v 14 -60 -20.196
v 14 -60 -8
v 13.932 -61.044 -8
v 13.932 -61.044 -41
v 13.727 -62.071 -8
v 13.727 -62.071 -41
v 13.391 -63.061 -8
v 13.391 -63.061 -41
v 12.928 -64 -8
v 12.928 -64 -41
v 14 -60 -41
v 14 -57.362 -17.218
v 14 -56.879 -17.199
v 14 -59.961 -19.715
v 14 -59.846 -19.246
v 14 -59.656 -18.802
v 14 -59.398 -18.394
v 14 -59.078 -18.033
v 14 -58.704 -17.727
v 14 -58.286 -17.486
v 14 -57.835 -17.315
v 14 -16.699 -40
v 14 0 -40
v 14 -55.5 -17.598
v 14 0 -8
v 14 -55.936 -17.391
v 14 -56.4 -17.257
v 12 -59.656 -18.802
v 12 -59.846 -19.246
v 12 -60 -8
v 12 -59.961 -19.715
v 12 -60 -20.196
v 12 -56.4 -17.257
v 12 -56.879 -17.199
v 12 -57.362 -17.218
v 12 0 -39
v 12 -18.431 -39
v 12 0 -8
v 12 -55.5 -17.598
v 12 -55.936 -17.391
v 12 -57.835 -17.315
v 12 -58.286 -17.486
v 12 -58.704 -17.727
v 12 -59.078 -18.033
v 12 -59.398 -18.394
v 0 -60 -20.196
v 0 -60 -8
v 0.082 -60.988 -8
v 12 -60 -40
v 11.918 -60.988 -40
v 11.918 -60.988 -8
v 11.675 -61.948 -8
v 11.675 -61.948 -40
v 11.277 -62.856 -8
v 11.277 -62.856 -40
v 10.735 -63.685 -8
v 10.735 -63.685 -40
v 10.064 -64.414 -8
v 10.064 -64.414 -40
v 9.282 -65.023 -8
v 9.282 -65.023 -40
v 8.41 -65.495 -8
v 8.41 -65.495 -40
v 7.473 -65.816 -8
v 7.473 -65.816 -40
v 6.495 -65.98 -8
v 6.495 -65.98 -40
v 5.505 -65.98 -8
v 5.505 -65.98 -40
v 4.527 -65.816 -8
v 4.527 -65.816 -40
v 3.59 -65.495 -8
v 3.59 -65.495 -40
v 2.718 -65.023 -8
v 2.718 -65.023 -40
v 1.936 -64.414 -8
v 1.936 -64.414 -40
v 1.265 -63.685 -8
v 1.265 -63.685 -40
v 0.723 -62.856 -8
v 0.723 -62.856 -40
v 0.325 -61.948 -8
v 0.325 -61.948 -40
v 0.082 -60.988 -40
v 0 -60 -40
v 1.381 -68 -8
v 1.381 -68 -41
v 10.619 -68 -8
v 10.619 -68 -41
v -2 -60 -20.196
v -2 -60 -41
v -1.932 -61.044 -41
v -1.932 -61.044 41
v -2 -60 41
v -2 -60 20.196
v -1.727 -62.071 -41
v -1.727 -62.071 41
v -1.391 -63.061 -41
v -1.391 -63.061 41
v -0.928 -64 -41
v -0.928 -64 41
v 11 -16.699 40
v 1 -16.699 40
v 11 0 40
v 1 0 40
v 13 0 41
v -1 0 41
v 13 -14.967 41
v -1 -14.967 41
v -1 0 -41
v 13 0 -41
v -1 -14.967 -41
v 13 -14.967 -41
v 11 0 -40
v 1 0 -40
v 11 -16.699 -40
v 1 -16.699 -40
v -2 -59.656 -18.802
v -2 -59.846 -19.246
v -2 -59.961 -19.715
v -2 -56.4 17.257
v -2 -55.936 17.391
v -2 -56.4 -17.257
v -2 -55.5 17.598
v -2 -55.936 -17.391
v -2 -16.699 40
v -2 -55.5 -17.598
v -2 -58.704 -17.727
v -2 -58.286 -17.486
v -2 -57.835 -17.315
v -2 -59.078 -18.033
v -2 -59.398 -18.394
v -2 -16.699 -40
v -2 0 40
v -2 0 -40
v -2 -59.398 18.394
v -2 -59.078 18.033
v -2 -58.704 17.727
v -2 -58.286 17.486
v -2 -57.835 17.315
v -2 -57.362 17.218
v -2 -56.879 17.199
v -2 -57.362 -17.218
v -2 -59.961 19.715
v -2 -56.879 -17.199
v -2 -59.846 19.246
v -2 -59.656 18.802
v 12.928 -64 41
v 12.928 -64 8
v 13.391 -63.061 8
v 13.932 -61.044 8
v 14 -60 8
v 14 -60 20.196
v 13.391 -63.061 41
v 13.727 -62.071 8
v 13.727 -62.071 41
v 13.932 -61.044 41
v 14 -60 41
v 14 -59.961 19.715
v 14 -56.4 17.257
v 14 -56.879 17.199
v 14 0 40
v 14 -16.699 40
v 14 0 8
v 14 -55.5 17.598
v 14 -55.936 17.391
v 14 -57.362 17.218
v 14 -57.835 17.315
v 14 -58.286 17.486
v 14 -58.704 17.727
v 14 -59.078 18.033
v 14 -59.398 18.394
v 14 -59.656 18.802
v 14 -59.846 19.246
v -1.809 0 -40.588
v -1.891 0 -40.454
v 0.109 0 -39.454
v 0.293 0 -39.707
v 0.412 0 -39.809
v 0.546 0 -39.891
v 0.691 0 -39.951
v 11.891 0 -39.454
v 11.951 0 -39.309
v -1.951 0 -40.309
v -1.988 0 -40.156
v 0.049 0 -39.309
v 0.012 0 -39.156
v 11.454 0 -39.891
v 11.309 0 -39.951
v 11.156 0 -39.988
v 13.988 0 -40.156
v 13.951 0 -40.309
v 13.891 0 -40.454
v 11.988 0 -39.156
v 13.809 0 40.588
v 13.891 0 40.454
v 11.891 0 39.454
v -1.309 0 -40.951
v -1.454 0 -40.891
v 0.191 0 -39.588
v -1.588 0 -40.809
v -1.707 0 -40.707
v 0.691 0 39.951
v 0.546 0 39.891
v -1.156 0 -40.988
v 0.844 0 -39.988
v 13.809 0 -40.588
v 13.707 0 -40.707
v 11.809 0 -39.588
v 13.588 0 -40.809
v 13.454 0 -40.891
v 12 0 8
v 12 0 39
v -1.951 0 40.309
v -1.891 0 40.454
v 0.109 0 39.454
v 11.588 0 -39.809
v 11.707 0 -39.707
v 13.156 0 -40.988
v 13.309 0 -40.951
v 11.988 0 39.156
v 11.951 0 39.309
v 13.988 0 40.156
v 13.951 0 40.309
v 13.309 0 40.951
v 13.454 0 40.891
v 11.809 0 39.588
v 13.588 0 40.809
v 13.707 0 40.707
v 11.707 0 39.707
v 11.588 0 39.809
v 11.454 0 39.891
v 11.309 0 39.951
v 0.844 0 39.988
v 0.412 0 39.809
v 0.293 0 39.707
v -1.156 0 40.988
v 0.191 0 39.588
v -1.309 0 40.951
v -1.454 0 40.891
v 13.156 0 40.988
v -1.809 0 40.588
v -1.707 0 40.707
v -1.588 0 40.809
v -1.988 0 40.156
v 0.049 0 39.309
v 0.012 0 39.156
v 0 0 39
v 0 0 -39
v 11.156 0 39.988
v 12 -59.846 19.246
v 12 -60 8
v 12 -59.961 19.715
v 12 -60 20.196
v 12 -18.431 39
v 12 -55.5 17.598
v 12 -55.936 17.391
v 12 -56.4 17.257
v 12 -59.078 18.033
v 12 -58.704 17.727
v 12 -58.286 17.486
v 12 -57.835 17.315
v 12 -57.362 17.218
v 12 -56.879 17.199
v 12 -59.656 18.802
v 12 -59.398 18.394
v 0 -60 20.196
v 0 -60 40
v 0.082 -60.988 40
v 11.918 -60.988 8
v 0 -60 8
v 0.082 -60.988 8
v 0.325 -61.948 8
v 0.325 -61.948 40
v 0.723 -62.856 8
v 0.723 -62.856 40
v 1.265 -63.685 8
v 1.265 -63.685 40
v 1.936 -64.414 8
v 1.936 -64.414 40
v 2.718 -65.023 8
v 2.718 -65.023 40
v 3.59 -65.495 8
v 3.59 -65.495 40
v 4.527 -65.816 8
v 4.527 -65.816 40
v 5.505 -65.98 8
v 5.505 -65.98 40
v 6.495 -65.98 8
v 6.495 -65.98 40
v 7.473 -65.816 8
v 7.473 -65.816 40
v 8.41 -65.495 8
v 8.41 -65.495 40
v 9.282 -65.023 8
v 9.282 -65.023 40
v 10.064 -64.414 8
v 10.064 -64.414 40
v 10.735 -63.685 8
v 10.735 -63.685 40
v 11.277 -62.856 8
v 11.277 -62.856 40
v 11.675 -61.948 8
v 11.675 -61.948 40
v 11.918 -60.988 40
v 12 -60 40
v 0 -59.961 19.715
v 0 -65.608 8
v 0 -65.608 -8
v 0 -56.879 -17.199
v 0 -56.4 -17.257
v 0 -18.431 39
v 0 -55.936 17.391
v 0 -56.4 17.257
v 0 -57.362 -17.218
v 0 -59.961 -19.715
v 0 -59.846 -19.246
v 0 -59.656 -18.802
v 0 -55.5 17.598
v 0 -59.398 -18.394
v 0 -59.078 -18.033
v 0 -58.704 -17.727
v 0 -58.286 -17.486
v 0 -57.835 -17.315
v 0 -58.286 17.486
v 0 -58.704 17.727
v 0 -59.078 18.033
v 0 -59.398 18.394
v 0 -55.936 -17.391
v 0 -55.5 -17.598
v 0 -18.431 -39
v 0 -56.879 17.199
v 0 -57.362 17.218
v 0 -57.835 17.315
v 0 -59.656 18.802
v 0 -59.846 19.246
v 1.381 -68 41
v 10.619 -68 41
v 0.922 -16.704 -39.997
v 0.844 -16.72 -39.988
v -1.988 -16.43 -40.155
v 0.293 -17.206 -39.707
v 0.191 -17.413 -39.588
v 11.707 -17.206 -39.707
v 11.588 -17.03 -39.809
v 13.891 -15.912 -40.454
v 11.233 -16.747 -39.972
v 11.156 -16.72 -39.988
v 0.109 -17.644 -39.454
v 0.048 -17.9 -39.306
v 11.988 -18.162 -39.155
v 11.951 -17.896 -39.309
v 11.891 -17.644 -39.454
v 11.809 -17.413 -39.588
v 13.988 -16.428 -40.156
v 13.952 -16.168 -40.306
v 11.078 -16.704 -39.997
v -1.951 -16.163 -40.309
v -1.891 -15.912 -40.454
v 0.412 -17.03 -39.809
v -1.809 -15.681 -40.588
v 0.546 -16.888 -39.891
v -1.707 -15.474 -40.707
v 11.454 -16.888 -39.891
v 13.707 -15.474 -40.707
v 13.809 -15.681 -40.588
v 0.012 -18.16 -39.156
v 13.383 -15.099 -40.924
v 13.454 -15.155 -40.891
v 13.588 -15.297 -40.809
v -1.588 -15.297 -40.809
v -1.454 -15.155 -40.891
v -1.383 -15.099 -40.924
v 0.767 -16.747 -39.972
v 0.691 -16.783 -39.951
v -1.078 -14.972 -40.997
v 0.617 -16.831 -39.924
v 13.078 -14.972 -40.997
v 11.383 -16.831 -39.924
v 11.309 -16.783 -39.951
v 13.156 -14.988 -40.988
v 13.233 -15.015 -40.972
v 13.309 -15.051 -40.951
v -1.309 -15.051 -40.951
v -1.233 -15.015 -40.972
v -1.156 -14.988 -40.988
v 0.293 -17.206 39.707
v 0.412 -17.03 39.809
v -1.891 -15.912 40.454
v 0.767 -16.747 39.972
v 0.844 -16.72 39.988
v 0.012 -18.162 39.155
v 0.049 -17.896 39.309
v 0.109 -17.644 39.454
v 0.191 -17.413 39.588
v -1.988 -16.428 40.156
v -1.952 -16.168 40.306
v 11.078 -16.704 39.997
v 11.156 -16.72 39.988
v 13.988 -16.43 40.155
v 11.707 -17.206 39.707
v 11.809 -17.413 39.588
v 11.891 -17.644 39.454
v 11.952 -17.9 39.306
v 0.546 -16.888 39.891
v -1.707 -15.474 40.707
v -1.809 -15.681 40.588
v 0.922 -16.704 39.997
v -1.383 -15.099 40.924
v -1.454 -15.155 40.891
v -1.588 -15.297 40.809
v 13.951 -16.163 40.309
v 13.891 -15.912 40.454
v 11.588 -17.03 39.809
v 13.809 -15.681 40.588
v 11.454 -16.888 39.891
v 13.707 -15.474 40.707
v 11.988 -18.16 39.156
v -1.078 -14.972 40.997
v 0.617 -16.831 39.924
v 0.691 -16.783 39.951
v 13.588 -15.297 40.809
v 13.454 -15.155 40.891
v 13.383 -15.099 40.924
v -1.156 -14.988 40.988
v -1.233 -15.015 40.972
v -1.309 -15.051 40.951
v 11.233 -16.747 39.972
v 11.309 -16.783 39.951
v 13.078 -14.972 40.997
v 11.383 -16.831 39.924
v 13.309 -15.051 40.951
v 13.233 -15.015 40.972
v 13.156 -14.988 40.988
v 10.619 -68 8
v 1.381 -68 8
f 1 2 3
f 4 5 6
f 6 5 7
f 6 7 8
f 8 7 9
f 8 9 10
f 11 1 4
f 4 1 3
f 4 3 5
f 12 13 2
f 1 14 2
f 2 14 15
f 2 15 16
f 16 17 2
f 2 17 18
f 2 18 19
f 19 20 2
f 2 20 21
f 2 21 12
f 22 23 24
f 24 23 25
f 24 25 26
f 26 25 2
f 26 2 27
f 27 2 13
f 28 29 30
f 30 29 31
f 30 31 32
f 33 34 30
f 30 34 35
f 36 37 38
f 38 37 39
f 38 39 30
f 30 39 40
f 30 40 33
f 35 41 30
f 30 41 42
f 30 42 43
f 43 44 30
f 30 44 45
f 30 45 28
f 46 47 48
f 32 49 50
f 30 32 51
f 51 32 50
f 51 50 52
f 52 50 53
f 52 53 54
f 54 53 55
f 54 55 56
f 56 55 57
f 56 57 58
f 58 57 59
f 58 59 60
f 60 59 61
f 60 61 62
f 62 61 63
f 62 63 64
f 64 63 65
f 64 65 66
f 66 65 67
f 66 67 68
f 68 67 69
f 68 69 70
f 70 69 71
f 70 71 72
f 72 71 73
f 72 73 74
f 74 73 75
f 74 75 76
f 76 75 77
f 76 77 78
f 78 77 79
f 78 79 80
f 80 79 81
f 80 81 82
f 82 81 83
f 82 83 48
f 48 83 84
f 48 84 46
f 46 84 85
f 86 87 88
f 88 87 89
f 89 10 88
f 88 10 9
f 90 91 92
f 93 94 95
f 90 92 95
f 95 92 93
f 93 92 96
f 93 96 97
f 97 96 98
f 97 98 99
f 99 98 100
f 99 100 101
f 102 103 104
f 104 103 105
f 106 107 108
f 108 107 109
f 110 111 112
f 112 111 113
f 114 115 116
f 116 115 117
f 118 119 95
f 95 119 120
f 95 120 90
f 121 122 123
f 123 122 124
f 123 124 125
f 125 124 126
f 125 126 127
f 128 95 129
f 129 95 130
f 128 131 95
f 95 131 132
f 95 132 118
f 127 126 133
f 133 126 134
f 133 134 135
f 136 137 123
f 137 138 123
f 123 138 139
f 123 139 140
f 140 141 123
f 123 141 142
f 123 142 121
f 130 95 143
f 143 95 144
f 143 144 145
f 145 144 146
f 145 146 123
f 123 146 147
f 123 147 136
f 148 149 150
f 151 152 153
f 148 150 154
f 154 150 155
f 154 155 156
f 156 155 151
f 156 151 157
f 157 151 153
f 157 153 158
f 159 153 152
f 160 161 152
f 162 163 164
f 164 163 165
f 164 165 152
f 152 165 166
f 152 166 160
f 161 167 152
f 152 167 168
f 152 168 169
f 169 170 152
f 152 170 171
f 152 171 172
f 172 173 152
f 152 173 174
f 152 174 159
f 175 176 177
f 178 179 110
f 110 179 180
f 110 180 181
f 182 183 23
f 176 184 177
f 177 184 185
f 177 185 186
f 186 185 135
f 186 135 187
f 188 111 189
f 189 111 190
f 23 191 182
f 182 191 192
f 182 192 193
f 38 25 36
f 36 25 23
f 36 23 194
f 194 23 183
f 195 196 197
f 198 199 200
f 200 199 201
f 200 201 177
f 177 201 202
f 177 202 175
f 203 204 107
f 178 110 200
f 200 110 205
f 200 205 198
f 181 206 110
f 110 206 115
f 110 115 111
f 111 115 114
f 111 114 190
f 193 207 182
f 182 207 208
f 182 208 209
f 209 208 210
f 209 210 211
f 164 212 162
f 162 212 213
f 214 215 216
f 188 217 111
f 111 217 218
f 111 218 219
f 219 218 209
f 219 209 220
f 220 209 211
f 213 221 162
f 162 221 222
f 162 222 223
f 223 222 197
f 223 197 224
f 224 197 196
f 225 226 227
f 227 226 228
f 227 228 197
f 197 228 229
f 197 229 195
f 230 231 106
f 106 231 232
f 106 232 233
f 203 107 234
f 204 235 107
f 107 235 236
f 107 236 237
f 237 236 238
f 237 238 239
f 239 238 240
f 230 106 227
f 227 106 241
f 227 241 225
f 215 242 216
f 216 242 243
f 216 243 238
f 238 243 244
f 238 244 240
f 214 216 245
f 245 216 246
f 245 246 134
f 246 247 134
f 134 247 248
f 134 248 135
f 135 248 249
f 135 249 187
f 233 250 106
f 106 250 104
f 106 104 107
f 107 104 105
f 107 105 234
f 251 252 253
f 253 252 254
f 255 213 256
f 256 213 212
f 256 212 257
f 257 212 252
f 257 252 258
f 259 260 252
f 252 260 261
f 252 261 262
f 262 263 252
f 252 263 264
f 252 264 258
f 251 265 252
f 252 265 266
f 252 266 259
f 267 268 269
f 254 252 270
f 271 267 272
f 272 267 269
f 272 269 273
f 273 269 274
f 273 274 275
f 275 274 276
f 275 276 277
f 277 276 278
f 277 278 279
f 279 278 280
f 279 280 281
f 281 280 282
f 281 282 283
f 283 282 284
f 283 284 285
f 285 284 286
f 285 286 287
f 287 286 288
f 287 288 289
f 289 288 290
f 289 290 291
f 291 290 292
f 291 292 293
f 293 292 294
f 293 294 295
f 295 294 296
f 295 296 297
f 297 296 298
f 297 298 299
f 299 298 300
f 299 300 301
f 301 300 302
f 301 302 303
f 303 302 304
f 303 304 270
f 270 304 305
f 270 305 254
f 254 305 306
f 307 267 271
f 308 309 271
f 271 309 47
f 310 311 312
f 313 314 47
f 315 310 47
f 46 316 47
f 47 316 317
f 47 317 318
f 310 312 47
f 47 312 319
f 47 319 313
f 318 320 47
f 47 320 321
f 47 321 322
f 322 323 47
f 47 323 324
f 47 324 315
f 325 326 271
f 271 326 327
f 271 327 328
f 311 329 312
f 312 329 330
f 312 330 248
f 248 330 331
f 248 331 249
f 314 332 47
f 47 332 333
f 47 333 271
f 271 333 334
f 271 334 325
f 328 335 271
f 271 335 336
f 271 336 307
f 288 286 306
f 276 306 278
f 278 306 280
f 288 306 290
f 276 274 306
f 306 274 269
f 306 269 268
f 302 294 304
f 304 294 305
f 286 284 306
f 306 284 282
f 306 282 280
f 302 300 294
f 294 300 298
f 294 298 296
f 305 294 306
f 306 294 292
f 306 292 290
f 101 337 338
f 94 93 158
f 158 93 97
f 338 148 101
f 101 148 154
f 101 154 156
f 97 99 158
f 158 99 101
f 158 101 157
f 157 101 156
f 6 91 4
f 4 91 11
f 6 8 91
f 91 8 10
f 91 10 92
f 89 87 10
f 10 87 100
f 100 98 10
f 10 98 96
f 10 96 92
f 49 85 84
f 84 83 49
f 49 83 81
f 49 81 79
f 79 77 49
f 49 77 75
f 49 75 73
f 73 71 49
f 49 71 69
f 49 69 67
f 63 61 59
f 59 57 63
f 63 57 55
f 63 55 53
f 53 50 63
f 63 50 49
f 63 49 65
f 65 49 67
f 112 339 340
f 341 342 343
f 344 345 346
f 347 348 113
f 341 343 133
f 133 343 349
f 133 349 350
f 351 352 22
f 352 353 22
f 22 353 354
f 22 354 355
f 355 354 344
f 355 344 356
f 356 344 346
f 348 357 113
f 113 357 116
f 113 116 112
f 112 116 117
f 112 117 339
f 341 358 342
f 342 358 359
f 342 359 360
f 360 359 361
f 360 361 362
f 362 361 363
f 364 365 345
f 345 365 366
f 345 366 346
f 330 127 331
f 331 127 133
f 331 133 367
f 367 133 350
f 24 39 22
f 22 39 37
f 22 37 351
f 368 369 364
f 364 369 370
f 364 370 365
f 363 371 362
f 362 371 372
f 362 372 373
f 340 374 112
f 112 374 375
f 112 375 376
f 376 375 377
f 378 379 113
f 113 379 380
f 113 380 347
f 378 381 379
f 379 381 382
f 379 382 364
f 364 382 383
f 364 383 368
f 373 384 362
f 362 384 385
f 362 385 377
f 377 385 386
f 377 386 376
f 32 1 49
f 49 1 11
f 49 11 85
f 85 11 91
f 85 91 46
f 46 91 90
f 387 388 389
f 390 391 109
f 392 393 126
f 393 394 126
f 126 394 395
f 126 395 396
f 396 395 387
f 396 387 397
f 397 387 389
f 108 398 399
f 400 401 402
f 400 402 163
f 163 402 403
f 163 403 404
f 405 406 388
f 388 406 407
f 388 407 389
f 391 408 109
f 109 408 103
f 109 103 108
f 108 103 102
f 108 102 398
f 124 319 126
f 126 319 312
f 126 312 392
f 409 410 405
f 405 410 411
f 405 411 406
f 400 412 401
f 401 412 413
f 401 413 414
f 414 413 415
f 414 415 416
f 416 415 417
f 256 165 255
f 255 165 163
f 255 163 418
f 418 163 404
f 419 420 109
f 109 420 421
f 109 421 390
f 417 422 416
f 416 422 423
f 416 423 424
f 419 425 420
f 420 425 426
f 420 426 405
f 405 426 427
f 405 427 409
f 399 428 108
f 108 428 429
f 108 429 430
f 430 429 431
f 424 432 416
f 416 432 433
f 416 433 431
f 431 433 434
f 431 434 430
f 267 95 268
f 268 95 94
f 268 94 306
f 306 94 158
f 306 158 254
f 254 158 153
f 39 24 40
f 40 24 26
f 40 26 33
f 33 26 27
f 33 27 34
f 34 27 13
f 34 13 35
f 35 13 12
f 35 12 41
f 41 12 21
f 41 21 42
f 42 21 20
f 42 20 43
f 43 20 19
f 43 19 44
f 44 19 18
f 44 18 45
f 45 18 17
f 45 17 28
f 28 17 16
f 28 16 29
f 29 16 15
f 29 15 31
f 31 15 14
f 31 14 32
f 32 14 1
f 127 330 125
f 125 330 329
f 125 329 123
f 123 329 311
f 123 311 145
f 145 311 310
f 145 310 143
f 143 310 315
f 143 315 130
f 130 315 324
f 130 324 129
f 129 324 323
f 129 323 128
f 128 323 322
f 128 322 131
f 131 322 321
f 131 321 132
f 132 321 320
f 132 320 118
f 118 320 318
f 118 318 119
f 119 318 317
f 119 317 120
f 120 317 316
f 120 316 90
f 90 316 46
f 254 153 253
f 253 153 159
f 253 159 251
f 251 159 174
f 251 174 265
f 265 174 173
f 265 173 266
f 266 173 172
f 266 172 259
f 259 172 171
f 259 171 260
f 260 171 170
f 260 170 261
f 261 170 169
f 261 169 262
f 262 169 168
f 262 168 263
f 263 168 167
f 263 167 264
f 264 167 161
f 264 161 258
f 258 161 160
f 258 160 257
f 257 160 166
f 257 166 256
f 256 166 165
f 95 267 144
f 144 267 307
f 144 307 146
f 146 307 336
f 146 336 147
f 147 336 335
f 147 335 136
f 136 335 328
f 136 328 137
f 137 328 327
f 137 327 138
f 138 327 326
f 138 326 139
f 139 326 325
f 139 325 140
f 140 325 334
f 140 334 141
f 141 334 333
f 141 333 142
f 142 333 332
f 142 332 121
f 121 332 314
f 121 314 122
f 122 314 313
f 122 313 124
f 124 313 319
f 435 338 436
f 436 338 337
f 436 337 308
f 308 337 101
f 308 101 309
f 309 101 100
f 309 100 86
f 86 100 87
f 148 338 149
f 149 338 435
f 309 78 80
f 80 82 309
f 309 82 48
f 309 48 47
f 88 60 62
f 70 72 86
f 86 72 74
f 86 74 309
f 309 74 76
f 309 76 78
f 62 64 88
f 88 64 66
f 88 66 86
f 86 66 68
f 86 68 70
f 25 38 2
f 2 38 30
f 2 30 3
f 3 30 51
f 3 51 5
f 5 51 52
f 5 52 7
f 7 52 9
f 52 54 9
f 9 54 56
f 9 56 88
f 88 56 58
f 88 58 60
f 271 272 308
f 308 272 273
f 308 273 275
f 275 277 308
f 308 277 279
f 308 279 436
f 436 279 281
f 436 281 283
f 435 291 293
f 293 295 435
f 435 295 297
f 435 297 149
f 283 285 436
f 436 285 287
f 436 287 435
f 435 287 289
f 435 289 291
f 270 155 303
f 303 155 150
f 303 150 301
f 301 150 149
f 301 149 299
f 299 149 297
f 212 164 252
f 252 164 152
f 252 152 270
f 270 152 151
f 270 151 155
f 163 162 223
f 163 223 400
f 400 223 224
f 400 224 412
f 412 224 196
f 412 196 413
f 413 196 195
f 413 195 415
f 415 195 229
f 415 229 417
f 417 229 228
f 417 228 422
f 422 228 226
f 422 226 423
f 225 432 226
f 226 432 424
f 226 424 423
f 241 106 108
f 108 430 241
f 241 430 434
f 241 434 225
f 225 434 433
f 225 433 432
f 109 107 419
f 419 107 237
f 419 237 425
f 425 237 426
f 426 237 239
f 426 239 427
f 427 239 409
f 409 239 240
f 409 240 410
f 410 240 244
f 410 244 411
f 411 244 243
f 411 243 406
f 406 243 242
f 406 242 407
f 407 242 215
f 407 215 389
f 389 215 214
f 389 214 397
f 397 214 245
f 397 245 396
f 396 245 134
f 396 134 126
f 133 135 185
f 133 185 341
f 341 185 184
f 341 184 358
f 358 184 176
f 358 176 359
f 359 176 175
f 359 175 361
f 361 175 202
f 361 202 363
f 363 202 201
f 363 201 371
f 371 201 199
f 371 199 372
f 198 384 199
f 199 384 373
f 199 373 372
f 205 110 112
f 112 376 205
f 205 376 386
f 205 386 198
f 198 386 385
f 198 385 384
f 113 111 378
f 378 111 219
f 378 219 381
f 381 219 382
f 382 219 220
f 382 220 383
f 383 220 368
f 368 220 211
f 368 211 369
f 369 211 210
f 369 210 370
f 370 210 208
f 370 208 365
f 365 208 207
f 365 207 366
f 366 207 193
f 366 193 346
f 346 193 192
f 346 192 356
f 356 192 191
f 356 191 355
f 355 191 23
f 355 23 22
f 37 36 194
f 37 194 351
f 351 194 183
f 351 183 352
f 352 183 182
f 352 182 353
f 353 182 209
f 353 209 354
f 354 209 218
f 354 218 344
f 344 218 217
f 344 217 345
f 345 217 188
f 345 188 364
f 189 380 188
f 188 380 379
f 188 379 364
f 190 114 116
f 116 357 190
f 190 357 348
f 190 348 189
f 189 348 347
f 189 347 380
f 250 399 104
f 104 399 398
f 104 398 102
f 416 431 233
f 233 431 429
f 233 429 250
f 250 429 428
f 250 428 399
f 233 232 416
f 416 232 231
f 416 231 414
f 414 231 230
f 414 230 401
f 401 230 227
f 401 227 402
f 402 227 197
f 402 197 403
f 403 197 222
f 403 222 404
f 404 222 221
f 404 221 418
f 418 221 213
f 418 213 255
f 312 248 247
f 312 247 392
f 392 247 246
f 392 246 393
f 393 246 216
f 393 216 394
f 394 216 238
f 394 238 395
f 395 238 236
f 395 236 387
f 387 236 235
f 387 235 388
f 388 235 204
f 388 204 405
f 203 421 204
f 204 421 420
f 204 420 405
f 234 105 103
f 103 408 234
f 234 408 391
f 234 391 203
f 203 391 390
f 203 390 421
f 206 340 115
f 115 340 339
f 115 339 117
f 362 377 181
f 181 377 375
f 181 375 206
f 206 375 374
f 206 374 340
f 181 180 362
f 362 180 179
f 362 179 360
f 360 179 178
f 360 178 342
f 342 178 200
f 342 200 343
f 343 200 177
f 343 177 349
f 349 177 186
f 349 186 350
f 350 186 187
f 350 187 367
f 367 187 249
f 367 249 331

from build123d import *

# Parameters (mm, degrees)
EXTRUDE_1_DEPTH     = 40
EXTRUDE_START       = 1
EXTRUDE_2_DEPTH     = 1
CUT_EXTRUDE_7_REACH = 83
FILLET_1_R          = 3
EXTRUDE_6_DEPTH     = 41
SKETCH_2_W          = 15.763743406
SKETCH_2_H          = 16
CUT_EXTRUDE_1_DEPTH = 80
FILLET_2_R          = 1


with BuildPart() as part:
    # 草图1 → 凸台-拉伸1 (new, symmetric)
    with BuildSketch(Plane.XY):
        with BuildLine():
            Line((0, 0), (0, -60))
            ThreePointArc((0, -60), (6, -66), (12, -60))
            Line((12, -60), (12, 0))
            Line((12, 0), (14, 0))
            Line((14, 0), (14, -60))
            ThreePointArc((14, -60), (6, -68), (-2, -60))
            Line((-2, -60), (-2, 0))
            Line((-2, 0), (0, 0))
        make_face()
    extrude(amount=EXTRUDE_1_DEPTH, both=True)

    # 草图3 → 凸台-拉伸2 (add)
    with BuildSketch(Plane.XY.offset(40).offset(EXTRUDE_START)):
        with BuildLine():
            Line((14, -60), (14, 0))
            Line((14, 0), (-2, 0))
            Line((-2, 0), (-2, -60))
            ThreePointArc((-2, -60), (6, -68), (14, -60))
        make_face()
    extrude_2 = extrude(amount=-EXTRUDE_2_DEPTH)

    # 镜向1: 凸台-拉伸2 across plane
    add(extrude_2.mirror(Plane.XY))

    # 切除-拉伸7: up to this face of the body (flat: up to its plane)
    cut_extrude_7_end = Plane(part.part.faces().sort_by_distance((14, -30, 0))[0])
    # 草图4 → 切除-拉伸7 (cut, up to the picked face)
    with BuildSketch(Plane.ZY.offset(2), mode=Mode.PRIVATE) as cut_extrude_7_sk1:
        Polygon((15, -60), (41, -60), (41, -14.966679003), align=None)
    cut_extrude_7_tool1 = split(extrude(cut_extrude_7_sk1.sketch, amount=-CUT_EXTRUDE_7_REACH, mode=Mode.PRIVATE), bisect_by=cut_extrude_7_end, keep=Keep.BOTH, mode=Mode.PRIVATE)
    # 草图4 → 切除-拉伸7 (cut, up to the picked face)
    with BuildSketch(Plane.ZY.offset(2), mode=Mode.PRIVATE) as cut_extrude_7_sk2:
        Polygon((-41, -14.966679003), (-15, -60), (-41, -60), align=None)
    cut_extrude_7_tool2 = split(extrude(cut_extrude_7_sk2.sketch, amount=-CUT_EXTRUDE_7_REACH, mode=Mode.PRIVATE), bisect_by=cut_extrude_7_end, keep=Keep.BOTH, mode=Mode.PRIVATE)
    add(cut_extrude_7_tool1.solids().sort_by(Axis((-2, -44.988893, 32.333333), (1, 0, 0)))[0], mode=Mode.SUBTRACT)
    add(cut_extrude_7_tool2.solids().sort_by(Axis((-2, -44.988893, -32.333333), (1, 0, 0)))[0], mode=Mode.SUBTRACT)

    # 圆角1
    fillet_1_edges = [part.edges().sort_by_distance(p)[0] for p in [
        (13, -60, 15),
        (-1, -60, 15),
        (13, -60, -15),
        (-1, -60, -15),
    ]]
    fillet(fillet_1_edges, radius=FILLET_1_R)

    # 草图7 → 凸台-拉伸6 (add, symmetric)
    with BuildSketch(Plane.XY):
        with BuildLine():
            Line((0.255437353, -64), (-0.92820323, -64))
            Line((-0.92820323, -64), (1.381197846, -68))
            Line((1.381197846, -68), (2.144974753, -68))
            Line((2.144974753, -68), (9.855025247, -68))
            Line((9.855025247, -68), (10.618802154, -68))
            Line((10.618802154, -68), (12.92820323, -64))
            Line((12.92820323, -64), (11.744562647, -64))
            ThreePointArc((11.744562647, -64), (6, -67), (0.255437353, -64))
        make_face()
    extrude(amount=EXTRUDE_6_DEPTH, both=True)

    # 草图2 → 切除-拉伸1 (cut)
    with BuildSketch(Plane(origin=(0, 0, 0), x_dir=(1, 0, 0), z_dir=(0, 1, 0))):
        with Locations((7.881871703, 0)):
            Rectangle(SKETCH_2_W, SKETCH_2_H)
    extrude(amount=-CUT_EXTRUDE_1_DEPTH, mode=Mode.SUBTRACT)

    # 圆角2
    fillet_2_edges = [part.edges().sort_by_distance(p)[0] for p in [
        (12, -8.349364905, 40),
        (-2, -7.483339502, 41),
        (-2, -7.483339502, -41),
        (0, -8.349364905, -40),
        (14, -7.483339502, -41),
        (14, -7.483339502, 41),
        (0, -8.349364905, 40),
        (12, -8.349364905, -40),
    ]]
    fillet(fillet_2_edges, radius=FILLET_2_R)


solid = part.part
